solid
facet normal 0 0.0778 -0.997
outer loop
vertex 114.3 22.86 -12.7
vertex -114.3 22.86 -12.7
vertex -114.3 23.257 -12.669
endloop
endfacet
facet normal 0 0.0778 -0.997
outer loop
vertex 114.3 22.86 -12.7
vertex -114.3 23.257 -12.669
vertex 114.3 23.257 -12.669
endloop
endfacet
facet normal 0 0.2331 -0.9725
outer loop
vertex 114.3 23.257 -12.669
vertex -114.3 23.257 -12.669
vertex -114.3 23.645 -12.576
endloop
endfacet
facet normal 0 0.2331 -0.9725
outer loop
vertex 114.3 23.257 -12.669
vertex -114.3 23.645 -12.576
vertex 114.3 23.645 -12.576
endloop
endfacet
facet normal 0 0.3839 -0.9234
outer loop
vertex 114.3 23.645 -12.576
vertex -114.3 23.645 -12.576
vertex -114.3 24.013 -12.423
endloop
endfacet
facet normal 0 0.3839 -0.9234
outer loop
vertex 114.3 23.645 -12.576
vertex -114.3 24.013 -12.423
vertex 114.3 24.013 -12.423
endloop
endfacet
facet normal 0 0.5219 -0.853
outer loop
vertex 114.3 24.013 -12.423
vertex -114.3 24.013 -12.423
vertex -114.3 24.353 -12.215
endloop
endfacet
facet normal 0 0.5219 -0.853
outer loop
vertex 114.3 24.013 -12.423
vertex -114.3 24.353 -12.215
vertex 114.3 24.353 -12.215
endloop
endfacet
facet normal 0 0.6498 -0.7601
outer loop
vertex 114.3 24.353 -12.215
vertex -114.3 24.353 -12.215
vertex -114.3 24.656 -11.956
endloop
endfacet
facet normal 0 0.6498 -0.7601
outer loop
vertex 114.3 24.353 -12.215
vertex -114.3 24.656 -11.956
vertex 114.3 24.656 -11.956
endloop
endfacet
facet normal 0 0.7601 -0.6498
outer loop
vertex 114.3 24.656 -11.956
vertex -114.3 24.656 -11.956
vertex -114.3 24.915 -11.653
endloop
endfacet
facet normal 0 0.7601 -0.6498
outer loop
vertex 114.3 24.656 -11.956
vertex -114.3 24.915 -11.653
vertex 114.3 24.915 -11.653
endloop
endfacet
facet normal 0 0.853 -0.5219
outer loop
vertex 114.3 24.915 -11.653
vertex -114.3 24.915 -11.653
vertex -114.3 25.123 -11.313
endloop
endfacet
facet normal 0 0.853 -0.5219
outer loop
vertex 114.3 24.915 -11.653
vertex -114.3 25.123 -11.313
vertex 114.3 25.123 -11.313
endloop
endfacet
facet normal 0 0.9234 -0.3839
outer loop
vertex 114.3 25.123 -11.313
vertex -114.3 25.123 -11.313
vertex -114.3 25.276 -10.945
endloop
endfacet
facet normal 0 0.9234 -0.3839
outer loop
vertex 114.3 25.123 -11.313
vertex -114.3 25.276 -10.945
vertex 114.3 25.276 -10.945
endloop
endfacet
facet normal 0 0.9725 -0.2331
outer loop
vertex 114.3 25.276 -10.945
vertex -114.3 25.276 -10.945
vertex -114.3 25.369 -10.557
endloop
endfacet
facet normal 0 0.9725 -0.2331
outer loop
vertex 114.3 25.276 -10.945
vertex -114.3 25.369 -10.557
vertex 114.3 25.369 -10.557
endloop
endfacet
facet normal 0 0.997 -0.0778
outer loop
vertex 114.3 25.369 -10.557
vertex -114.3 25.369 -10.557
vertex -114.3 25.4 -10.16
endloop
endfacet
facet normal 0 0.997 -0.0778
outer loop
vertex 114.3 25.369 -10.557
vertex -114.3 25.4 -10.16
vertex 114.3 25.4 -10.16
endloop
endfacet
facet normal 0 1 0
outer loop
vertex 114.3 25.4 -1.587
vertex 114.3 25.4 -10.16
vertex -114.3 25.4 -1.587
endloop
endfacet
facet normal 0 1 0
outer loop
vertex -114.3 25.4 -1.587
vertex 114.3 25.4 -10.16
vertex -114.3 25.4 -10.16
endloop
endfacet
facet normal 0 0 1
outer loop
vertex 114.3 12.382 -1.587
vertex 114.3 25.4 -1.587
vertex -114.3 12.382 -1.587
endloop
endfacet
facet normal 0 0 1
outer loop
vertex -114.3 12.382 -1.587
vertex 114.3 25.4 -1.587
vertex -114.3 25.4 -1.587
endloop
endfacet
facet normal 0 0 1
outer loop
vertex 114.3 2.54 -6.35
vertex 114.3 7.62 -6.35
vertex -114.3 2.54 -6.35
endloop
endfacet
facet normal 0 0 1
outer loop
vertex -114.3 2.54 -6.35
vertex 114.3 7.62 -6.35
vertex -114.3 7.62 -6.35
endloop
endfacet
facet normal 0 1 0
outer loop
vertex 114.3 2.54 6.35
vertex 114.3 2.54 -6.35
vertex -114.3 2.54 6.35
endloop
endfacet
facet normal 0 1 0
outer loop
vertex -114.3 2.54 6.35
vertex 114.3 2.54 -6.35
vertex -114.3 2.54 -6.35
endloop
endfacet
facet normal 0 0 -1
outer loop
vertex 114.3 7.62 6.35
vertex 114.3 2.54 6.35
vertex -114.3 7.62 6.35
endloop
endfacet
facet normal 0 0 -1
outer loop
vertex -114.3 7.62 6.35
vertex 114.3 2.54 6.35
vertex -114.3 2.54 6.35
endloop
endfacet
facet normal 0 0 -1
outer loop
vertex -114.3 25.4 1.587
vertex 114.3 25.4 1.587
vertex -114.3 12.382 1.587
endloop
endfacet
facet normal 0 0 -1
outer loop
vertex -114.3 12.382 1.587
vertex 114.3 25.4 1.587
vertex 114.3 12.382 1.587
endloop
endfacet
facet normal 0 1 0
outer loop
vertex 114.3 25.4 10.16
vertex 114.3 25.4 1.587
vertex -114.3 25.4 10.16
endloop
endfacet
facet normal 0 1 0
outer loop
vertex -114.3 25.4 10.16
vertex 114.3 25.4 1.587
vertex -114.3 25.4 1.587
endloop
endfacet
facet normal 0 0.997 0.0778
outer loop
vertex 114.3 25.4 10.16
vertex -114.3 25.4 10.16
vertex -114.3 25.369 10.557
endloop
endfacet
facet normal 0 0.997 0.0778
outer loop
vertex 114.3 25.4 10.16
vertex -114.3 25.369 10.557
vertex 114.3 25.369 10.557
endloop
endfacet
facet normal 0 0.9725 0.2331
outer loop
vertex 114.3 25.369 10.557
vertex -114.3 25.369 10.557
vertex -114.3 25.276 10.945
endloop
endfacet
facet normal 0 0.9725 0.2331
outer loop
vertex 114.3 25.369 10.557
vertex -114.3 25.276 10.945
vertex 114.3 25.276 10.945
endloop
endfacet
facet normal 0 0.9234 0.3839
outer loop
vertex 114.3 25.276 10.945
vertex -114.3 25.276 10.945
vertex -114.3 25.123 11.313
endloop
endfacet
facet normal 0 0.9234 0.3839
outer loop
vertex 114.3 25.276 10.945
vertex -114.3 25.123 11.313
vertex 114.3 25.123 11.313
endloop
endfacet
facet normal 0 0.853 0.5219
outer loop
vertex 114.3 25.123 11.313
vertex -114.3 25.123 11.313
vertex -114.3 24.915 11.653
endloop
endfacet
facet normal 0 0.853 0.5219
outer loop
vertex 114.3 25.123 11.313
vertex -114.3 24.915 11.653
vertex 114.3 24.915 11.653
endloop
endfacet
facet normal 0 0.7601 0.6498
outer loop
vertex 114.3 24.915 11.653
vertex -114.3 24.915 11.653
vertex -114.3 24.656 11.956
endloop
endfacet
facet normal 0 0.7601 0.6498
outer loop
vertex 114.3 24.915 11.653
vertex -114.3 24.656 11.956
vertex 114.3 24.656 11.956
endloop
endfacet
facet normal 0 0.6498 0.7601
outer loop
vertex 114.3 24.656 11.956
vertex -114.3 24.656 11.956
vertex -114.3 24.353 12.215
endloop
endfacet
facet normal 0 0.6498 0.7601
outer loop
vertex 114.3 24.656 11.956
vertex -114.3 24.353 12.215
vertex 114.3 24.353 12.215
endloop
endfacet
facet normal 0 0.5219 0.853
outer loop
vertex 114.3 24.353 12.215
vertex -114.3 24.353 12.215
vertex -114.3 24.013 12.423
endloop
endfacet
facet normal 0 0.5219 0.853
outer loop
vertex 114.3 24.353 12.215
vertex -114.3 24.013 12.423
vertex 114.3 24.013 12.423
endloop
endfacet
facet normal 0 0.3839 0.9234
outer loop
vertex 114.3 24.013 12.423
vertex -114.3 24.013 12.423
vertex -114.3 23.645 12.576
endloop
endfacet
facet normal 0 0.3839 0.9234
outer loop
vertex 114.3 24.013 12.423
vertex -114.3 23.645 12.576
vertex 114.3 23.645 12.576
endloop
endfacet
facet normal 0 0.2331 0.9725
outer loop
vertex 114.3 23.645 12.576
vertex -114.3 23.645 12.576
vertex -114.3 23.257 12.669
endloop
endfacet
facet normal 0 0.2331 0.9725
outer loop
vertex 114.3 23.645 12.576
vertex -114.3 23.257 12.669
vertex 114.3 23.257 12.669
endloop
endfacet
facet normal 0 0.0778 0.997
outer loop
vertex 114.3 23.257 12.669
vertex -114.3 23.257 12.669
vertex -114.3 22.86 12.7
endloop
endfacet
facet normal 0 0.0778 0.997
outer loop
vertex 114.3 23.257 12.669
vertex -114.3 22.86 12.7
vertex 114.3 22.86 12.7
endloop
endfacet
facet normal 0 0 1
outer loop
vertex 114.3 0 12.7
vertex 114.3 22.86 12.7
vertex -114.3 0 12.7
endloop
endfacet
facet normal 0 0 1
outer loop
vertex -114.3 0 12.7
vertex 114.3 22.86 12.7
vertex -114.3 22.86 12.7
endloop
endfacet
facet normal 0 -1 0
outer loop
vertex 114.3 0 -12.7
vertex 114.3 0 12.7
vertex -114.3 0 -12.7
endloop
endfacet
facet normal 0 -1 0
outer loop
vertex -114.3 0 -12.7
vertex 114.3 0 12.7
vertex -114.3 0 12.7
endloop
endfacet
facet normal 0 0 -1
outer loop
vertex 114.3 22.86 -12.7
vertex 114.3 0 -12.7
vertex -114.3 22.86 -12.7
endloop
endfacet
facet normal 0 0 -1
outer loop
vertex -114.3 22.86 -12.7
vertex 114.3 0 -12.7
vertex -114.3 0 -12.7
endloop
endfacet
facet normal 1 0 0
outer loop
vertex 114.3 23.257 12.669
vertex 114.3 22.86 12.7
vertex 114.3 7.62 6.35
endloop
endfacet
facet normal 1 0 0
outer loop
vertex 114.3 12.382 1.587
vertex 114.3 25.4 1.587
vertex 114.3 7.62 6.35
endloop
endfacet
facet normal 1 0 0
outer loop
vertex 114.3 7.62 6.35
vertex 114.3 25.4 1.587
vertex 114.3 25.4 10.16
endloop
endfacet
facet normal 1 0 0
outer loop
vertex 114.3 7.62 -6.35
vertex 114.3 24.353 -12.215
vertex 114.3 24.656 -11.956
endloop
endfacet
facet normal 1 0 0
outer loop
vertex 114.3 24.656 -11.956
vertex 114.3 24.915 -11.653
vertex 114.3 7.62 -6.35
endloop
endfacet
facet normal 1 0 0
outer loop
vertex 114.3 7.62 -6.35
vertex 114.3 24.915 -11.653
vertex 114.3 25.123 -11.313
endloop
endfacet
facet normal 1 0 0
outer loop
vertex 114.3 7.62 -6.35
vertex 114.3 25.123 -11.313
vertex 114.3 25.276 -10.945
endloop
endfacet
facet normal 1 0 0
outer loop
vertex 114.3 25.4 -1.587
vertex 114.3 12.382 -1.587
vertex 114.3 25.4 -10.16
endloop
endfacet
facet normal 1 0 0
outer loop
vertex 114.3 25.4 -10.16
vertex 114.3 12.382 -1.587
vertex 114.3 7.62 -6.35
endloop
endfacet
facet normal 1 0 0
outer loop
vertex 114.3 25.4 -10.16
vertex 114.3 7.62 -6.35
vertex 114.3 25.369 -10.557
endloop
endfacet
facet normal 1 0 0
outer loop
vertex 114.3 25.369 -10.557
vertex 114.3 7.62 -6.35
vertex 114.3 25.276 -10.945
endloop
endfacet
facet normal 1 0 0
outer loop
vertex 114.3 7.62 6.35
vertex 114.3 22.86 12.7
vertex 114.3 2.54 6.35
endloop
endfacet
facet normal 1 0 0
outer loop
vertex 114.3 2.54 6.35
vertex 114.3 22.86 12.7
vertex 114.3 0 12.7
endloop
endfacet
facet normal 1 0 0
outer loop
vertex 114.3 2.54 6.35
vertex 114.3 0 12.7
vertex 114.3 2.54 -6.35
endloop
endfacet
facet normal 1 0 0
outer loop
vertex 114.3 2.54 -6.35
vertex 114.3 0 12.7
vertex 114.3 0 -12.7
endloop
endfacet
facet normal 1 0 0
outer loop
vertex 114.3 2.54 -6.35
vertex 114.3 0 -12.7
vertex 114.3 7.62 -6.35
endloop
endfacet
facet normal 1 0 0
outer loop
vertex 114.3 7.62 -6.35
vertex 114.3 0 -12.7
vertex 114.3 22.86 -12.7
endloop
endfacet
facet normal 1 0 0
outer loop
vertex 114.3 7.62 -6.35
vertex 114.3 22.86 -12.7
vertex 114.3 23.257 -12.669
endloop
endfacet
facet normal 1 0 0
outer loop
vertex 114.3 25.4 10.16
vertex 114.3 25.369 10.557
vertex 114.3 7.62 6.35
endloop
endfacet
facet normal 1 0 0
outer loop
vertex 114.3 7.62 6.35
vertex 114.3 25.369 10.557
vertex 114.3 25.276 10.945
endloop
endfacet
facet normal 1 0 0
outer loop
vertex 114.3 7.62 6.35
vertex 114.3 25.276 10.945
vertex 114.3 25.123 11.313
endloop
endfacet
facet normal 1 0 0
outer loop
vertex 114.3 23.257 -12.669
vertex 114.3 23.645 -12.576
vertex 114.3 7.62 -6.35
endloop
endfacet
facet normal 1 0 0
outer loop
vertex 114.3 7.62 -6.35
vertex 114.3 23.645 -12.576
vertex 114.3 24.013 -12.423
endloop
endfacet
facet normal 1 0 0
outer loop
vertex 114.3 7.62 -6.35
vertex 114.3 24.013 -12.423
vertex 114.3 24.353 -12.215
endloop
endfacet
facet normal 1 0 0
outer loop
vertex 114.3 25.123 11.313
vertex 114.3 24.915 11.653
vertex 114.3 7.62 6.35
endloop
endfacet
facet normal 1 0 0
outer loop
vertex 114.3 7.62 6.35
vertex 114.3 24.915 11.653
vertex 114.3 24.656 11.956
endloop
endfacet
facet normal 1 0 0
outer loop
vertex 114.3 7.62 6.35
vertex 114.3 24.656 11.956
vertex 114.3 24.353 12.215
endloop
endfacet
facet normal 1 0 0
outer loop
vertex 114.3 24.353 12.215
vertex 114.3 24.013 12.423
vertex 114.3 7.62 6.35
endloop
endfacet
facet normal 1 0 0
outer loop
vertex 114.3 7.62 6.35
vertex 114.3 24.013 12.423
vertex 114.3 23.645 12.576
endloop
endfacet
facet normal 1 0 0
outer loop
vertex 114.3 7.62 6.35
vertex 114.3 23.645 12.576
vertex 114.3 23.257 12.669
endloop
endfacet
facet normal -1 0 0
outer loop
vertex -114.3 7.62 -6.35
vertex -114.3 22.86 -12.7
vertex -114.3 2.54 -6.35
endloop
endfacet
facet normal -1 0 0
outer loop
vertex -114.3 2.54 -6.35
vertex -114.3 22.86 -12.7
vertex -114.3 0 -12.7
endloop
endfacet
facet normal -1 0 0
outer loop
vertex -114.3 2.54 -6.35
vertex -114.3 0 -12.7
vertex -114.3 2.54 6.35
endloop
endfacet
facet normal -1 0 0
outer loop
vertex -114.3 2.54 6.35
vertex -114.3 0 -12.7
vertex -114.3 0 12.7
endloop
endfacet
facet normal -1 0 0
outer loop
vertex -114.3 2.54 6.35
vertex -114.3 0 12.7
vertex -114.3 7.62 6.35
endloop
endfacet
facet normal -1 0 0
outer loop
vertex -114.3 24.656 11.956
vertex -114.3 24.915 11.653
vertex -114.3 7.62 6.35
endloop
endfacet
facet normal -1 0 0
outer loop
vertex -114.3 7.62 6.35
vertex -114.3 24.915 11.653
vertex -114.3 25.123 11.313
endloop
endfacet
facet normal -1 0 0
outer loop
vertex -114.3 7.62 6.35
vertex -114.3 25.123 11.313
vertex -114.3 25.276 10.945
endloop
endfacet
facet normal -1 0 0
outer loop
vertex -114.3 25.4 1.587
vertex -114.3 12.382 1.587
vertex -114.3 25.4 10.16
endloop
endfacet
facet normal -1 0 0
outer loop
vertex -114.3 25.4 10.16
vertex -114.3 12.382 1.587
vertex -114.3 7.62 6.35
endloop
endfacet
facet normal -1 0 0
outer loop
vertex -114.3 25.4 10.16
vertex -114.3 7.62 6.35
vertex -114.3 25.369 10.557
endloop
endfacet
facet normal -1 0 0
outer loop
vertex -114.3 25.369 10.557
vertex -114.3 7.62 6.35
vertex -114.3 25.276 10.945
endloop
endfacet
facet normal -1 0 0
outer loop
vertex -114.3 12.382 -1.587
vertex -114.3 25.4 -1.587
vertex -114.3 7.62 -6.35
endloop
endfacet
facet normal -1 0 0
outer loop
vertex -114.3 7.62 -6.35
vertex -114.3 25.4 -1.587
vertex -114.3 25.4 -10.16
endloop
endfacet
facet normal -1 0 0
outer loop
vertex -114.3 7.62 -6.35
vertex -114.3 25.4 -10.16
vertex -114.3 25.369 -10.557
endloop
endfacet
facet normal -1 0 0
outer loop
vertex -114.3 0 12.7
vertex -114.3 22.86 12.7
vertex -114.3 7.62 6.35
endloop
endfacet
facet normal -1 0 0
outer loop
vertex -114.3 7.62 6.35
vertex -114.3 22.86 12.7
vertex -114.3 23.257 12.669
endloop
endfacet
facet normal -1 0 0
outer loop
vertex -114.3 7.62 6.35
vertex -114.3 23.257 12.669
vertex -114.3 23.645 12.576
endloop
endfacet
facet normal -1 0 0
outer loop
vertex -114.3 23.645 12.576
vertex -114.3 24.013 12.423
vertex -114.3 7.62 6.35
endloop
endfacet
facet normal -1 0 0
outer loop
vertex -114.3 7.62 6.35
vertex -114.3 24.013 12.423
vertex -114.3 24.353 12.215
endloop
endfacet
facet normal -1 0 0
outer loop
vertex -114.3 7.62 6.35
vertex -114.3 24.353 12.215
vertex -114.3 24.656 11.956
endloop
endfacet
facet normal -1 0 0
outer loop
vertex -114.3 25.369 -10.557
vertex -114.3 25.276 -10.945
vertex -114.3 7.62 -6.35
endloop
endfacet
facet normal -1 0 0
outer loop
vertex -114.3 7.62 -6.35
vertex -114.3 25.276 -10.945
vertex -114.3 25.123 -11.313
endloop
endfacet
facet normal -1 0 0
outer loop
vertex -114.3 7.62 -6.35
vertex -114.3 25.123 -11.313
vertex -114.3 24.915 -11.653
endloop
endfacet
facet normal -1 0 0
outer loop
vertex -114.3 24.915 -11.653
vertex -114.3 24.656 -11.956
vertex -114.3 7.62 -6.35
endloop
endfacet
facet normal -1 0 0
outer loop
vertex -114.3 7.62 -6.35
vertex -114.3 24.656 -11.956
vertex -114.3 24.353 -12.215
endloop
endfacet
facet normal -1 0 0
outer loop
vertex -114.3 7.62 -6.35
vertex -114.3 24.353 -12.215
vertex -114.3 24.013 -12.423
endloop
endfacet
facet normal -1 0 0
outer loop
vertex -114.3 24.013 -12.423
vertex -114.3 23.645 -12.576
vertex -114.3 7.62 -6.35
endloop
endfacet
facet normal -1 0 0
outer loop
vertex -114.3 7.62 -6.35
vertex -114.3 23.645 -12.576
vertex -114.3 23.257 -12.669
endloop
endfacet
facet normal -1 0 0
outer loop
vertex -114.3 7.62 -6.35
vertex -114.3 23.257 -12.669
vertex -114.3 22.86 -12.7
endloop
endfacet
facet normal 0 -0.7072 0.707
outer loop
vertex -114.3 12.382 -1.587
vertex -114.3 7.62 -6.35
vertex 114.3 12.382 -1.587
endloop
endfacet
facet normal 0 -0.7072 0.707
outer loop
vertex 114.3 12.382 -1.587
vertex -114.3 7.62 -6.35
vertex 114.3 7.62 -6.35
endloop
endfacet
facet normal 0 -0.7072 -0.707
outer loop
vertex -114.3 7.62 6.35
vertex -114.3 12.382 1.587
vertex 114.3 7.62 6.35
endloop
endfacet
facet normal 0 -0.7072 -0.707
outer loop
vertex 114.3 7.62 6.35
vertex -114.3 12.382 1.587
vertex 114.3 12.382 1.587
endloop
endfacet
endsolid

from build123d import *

# Parameters (mm, degrees)
BOSS_EXTRUDE1_DEPTH = 114.3
CUT_EXTRUDE2_DEPTH  = 114.3


with BuildPart() as part:
    # Sketch1 → Boss-Extrude1 (new, symmetric)
    with BuildSketch(Plane(origin=(0, 0, 0), x_dir=(0, 0, -1), z_dir=(1, 0, 0))):
        with BuildLine():
            Line((12.7, 0), (-12.7, 0))
            Line((-12.7, 0), (-12.7, 22.86))
            ThreePointArc((-12.7, 22.86), (-11.956051224, 24.656051224), (-10.16, 25.4))
            Line((-10.16, 25.4), (-1.5875, 25.4))
            Line((-1.5875, 25.4), (-1.5875, 7.62))
            Line((-1.5875, 7.62), (-6.35, 7.62))
            Line((-6.35, 7.62), (-6.35, 2.54))
            Line((-6.35, 2.54), (6.35, 2.54))
            Line((6.35, 2.54), (6.35, 7.62))
            Line((6.35, 7.62), (1.5875, 7.62))
            Line((1.5875, 7.62), (1.5875, 25.4))
            Line((1.5875, 25.4), (10.16, 25.4))
            ThreePointArc((10.16, 25.4), (11.956051224, 24.656051224), (12.7, 22.86))
            Line((12.7, 22.86), (12.7, 0))
        make_face()
    extrude(amount=BOSS_EXTRUDE1_DEPTH, both=True)

    # Sketch2 → Cut-Extrude2 (cut, symmetric)
    with BuildSketch(Plane(origin=(0, 0, 0), x_dir=(0, 0, -1), z_dir=(1, 0, 0))):
        Polygon((-6.35, 7.62), (-1.5875, 12.3825), (-1.5875, 7.62), align=None)
        Polygon((1.5875, 7.62), (6.35, 7.62), (1.5875, 12.3825), align=None)
    extrude(amount=CUT_EXTRUDE2_DEPTH, both=True, mode=Mode.SUBTRACT)


solid = part.part
